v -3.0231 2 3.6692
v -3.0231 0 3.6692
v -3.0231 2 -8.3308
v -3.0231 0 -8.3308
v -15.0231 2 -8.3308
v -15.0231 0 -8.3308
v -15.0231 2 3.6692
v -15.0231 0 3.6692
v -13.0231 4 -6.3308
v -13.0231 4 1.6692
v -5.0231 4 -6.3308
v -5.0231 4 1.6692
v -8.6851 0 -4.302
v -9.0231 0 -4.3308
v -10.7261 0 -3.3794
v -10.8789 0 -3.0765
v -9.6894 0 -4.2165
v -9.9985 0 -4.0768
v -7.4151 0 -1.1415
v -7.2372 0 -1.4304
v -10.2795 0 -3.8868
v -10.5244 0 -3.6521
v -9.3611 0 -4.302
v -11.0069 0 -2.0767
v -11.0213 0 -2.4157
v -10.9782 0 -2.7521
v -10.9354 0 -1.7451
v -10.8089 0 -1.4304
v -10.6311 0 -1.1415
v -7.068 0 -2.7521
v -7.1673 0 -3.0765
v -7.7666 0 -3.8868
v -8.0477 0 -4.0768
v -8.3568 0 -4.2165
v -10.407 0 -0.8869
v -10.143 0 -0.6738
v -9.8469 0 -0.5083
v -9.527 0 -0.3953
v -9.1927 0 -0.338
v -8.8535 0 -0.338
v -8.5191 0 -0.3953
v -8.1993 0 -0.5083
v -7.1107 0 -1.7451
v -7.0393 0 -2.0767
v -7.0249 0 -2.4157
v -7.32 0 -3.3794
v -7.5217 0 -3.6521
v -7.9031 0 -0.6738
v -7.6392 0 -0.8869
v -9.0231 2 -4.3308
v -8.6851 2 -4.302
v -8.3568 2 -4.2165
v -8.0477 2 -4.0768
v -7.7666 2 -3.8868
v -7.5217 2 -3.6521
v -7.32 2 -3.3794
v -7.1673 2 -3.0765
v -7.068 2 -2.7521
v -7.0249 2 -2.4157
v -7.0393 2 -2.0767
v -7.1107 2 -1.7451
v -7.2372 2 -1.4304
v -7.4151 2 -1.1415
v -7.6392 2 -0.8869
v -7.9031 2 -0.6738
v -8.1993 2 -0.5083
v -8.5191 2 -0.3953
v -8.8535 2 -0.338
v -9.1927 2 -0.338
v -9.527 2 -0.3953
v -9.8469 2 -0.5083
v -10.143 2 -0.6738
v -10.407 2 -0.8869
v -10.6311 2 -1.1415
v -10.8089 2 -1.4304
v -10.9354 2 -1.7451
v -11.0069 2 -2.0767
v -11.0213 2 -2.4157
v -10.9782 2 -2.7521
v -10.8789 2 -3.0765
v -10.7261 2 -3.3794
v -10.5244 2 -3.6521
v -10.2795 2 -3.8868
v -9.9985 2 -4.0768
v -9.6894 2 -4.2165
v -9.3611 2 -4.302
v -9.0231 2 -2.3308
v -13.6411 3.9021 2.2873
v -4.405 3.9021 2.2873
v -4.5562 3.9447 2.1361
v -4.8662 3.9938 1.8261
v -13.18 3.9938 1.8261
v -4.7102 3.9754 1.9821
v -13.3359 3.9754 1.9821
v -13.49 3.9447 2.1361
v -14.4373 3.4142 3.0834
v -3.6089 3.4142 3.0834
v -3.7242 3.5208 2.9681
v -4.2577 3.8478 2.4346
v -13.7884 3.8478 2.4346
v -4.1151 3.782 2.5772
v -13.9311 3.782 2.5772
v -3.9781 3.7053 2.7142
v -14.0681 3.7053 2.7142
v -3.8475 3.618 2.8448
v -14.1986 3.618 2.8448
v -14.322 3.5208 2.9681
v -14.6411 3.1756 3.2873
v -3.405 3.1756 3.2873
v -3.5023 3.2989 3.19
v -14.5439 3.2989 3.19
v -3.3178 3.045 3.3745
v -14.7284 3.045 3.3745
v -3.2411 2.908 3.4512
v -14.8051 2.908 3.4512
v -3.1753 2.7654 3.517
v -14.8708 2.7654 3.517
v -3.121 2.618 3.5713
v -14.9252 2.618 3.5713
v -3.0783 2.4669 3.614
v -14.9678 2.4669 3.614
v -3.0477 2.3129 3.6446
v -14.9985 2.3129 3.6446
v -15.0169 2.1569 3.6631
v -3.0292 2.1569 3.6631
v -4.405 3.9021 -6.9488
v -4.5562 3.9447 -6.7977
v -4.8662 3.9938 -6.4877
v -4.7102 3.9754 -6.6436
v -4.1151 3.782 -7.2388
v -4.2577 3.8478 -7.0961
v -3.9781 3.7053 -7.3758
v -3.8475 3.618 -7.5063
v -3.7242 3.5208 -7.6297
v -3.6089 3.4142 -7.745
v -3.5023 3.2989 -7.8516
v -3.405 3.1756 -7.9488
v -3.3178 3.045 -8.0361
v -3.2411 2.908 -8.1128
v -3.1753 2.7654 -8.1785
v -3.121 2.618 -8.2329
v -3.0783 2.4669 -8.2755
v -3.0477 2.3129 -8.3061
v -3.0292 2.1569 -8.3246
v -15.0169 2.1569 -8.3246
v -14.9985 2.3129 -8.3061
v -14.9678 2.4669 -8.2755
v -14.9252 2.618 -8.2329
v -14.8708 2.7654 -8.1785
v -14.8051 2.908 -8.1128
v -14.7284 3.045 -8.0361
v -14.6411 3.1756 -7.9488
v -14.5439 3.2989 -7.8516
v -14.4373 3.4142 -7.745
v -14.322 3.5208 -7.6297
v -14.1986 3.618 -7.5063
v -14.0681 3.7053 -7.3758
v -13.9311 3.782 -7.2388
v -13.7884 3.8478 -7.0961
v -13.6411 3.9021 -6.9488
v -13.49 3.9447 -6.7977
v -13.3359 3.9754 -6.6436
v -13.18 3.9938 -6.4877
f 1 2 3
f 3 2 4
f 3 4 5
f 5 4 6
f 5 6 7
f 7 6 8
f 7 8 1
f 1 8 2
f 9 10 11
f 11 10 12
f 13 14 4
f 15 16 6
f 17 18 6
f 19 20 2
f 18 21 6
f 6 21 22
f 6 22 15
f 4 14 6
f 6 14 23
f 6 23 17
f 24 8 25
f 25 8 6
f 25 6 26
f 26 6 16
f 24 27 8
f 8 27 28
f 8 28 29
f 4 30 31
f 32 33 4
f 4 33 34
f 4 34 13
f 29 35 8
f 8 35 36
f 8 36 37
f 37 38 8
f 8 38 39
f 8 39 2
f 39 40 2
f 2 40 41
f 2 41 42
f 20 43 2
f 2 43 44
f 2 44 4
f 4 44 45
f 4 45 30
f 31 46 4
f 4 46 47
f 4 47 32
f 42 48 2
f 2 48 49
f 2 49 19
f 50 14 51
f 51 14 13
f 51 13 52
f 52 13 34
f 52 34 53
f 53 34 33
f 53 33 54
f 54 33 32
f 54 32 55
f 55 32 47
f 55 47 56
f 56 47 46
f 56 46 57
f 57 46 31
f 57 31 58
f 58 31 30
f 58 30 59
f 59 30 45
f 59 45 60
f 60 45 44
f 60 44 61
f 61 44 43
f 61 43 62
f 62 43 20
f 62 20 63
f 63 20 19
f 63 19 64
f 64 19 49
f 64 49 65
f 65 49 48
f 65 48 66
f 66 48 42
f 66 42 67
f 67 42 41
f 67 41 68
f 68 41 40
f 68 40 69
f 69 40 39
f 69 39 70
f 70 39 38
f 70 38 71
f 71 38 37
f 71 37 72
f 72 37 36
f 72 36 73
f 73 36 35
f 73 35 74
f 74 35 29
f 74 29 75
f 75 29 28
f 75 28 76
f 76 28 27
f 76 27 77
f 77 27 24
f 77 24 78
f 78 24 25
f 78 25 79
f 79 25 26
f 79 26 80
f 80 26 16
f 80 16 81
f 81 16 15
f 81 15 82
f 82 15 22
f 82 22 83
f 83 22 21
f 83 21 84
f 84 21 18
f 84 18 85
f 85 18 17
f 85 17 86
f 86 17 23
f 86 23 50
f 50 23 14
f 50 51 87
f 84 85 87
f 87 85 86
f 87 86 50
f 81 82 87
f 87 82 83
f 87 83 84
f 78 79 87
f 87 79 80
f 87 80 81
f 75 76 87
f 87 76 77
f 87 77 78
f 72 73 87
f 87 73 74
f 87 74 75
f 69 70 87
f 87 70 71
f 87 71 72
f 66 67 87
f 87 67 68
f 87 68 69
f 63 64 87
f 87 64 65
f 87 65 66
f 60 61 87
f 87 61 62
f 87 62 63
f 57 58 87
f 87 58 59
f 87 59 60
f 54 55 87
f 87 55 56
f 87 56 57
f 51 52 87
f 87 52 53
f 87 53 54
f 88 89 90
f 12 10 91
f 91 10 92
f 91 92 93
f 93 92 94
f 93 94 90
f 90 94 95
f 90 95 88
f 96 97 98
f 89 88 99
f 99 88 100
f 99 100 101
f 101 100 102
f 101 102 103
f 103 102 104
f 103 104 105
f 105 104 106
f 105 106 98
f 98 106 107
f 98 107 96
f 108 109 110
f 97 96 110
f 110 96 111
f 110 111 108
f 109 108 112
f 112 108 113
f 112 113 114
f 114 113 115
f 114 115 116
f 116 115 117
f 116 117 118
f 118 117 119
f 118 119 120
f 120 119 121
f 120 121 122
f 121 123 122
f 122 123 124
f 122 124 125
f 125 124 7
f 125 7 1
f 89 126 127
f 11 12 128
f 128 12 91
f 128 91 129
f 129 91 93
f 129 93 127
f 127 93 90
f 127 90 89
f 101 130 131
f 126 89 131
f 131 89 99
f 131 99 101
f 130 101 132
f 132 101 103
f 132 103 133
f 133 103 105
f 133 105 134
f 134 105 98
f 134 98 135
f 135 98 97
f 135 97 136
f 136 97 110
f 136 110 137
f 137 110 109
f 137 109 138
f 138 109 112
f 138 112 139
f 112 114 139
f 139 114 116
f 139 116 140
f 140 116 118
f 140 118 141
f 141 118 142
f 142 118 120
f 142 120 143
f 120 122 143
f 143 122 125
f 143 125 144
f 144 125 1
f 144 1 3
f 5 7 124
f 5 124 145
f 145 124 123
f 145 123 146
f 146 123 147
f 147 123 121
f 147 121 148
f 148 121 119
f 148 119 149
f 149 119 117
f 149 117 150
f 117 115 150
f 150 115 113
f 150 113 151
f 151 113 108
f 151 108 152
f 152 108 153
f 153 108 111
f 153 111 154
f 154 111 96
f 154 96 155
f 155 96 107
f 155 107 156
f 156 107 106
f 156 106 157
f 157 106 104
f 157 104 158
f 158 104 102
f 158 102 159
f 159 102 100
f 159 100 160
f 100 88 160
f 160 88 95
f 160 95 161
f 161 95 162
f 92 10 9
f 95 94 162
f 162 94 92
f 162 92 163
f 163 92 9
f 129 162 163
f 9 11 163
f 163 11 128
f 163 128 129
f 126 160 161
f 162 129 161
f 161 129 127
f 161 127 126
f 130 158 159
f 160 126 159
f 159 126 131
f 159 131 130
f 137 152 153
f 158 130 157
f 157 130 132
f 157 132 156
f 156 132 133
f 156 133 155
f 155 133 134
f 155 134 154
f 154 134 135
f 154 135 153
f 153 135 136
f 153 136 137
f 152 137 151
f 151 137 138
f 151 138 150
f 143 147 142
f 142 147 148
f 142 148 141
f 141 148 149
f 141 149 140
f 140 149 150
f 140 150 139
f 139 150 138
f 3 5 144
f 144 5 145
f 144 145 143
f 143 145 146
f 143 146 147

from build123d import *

# Parameters (mm, degrees)
SKETCH1_W           = 12
SKETCH1_H           = 12
BOSS_EXTRUDE1_DEPTH = 4
SKETCH2_R           = 2
CUT_EXTRUDE1_DEPTH  = 2
FILLET1_R           = 2


with BuildPart() as part:
    # Sketch1 → Boss-Extrude1 (new body)
    with BuildSketch(Plane(origin=(0, 0, 0), x_dir=(1, 0, 0), z_dir=(0, 1, 0))):
        with Locations((-9.023076923, 2.330769231)):
            Rectangle(SKETCH1_W, SKETCH1_H)
    extrude(amount=BOSS_EXTRUDE1_DEPTH)

    # Sketch2 → Cut-Extrude1 (cut)
    with BuildSketch(Plane.XZ):
        with Locations((-9.023076923, -2.330769231)):
            Circle(SKETCH2_R)
    extrude(amount=-CUT_EXTRUDE1_DEPTH, mode=Mode.SUBTRACT)

    # Fillet1
    fillet1_edges = [part.edges().sort_by_distance(p)[0] for p in [
        (-15.023076923, 4, -2.330769231),
        (-9.023076923, 4, 3.669230769),
        (-3.023076923, 4, -2.330769231),
        (-9.023076923, 4, -8.330769231),
    ]]
    fillet(fillet1_edges, radius=FILLET1_R)


solid = part.part
